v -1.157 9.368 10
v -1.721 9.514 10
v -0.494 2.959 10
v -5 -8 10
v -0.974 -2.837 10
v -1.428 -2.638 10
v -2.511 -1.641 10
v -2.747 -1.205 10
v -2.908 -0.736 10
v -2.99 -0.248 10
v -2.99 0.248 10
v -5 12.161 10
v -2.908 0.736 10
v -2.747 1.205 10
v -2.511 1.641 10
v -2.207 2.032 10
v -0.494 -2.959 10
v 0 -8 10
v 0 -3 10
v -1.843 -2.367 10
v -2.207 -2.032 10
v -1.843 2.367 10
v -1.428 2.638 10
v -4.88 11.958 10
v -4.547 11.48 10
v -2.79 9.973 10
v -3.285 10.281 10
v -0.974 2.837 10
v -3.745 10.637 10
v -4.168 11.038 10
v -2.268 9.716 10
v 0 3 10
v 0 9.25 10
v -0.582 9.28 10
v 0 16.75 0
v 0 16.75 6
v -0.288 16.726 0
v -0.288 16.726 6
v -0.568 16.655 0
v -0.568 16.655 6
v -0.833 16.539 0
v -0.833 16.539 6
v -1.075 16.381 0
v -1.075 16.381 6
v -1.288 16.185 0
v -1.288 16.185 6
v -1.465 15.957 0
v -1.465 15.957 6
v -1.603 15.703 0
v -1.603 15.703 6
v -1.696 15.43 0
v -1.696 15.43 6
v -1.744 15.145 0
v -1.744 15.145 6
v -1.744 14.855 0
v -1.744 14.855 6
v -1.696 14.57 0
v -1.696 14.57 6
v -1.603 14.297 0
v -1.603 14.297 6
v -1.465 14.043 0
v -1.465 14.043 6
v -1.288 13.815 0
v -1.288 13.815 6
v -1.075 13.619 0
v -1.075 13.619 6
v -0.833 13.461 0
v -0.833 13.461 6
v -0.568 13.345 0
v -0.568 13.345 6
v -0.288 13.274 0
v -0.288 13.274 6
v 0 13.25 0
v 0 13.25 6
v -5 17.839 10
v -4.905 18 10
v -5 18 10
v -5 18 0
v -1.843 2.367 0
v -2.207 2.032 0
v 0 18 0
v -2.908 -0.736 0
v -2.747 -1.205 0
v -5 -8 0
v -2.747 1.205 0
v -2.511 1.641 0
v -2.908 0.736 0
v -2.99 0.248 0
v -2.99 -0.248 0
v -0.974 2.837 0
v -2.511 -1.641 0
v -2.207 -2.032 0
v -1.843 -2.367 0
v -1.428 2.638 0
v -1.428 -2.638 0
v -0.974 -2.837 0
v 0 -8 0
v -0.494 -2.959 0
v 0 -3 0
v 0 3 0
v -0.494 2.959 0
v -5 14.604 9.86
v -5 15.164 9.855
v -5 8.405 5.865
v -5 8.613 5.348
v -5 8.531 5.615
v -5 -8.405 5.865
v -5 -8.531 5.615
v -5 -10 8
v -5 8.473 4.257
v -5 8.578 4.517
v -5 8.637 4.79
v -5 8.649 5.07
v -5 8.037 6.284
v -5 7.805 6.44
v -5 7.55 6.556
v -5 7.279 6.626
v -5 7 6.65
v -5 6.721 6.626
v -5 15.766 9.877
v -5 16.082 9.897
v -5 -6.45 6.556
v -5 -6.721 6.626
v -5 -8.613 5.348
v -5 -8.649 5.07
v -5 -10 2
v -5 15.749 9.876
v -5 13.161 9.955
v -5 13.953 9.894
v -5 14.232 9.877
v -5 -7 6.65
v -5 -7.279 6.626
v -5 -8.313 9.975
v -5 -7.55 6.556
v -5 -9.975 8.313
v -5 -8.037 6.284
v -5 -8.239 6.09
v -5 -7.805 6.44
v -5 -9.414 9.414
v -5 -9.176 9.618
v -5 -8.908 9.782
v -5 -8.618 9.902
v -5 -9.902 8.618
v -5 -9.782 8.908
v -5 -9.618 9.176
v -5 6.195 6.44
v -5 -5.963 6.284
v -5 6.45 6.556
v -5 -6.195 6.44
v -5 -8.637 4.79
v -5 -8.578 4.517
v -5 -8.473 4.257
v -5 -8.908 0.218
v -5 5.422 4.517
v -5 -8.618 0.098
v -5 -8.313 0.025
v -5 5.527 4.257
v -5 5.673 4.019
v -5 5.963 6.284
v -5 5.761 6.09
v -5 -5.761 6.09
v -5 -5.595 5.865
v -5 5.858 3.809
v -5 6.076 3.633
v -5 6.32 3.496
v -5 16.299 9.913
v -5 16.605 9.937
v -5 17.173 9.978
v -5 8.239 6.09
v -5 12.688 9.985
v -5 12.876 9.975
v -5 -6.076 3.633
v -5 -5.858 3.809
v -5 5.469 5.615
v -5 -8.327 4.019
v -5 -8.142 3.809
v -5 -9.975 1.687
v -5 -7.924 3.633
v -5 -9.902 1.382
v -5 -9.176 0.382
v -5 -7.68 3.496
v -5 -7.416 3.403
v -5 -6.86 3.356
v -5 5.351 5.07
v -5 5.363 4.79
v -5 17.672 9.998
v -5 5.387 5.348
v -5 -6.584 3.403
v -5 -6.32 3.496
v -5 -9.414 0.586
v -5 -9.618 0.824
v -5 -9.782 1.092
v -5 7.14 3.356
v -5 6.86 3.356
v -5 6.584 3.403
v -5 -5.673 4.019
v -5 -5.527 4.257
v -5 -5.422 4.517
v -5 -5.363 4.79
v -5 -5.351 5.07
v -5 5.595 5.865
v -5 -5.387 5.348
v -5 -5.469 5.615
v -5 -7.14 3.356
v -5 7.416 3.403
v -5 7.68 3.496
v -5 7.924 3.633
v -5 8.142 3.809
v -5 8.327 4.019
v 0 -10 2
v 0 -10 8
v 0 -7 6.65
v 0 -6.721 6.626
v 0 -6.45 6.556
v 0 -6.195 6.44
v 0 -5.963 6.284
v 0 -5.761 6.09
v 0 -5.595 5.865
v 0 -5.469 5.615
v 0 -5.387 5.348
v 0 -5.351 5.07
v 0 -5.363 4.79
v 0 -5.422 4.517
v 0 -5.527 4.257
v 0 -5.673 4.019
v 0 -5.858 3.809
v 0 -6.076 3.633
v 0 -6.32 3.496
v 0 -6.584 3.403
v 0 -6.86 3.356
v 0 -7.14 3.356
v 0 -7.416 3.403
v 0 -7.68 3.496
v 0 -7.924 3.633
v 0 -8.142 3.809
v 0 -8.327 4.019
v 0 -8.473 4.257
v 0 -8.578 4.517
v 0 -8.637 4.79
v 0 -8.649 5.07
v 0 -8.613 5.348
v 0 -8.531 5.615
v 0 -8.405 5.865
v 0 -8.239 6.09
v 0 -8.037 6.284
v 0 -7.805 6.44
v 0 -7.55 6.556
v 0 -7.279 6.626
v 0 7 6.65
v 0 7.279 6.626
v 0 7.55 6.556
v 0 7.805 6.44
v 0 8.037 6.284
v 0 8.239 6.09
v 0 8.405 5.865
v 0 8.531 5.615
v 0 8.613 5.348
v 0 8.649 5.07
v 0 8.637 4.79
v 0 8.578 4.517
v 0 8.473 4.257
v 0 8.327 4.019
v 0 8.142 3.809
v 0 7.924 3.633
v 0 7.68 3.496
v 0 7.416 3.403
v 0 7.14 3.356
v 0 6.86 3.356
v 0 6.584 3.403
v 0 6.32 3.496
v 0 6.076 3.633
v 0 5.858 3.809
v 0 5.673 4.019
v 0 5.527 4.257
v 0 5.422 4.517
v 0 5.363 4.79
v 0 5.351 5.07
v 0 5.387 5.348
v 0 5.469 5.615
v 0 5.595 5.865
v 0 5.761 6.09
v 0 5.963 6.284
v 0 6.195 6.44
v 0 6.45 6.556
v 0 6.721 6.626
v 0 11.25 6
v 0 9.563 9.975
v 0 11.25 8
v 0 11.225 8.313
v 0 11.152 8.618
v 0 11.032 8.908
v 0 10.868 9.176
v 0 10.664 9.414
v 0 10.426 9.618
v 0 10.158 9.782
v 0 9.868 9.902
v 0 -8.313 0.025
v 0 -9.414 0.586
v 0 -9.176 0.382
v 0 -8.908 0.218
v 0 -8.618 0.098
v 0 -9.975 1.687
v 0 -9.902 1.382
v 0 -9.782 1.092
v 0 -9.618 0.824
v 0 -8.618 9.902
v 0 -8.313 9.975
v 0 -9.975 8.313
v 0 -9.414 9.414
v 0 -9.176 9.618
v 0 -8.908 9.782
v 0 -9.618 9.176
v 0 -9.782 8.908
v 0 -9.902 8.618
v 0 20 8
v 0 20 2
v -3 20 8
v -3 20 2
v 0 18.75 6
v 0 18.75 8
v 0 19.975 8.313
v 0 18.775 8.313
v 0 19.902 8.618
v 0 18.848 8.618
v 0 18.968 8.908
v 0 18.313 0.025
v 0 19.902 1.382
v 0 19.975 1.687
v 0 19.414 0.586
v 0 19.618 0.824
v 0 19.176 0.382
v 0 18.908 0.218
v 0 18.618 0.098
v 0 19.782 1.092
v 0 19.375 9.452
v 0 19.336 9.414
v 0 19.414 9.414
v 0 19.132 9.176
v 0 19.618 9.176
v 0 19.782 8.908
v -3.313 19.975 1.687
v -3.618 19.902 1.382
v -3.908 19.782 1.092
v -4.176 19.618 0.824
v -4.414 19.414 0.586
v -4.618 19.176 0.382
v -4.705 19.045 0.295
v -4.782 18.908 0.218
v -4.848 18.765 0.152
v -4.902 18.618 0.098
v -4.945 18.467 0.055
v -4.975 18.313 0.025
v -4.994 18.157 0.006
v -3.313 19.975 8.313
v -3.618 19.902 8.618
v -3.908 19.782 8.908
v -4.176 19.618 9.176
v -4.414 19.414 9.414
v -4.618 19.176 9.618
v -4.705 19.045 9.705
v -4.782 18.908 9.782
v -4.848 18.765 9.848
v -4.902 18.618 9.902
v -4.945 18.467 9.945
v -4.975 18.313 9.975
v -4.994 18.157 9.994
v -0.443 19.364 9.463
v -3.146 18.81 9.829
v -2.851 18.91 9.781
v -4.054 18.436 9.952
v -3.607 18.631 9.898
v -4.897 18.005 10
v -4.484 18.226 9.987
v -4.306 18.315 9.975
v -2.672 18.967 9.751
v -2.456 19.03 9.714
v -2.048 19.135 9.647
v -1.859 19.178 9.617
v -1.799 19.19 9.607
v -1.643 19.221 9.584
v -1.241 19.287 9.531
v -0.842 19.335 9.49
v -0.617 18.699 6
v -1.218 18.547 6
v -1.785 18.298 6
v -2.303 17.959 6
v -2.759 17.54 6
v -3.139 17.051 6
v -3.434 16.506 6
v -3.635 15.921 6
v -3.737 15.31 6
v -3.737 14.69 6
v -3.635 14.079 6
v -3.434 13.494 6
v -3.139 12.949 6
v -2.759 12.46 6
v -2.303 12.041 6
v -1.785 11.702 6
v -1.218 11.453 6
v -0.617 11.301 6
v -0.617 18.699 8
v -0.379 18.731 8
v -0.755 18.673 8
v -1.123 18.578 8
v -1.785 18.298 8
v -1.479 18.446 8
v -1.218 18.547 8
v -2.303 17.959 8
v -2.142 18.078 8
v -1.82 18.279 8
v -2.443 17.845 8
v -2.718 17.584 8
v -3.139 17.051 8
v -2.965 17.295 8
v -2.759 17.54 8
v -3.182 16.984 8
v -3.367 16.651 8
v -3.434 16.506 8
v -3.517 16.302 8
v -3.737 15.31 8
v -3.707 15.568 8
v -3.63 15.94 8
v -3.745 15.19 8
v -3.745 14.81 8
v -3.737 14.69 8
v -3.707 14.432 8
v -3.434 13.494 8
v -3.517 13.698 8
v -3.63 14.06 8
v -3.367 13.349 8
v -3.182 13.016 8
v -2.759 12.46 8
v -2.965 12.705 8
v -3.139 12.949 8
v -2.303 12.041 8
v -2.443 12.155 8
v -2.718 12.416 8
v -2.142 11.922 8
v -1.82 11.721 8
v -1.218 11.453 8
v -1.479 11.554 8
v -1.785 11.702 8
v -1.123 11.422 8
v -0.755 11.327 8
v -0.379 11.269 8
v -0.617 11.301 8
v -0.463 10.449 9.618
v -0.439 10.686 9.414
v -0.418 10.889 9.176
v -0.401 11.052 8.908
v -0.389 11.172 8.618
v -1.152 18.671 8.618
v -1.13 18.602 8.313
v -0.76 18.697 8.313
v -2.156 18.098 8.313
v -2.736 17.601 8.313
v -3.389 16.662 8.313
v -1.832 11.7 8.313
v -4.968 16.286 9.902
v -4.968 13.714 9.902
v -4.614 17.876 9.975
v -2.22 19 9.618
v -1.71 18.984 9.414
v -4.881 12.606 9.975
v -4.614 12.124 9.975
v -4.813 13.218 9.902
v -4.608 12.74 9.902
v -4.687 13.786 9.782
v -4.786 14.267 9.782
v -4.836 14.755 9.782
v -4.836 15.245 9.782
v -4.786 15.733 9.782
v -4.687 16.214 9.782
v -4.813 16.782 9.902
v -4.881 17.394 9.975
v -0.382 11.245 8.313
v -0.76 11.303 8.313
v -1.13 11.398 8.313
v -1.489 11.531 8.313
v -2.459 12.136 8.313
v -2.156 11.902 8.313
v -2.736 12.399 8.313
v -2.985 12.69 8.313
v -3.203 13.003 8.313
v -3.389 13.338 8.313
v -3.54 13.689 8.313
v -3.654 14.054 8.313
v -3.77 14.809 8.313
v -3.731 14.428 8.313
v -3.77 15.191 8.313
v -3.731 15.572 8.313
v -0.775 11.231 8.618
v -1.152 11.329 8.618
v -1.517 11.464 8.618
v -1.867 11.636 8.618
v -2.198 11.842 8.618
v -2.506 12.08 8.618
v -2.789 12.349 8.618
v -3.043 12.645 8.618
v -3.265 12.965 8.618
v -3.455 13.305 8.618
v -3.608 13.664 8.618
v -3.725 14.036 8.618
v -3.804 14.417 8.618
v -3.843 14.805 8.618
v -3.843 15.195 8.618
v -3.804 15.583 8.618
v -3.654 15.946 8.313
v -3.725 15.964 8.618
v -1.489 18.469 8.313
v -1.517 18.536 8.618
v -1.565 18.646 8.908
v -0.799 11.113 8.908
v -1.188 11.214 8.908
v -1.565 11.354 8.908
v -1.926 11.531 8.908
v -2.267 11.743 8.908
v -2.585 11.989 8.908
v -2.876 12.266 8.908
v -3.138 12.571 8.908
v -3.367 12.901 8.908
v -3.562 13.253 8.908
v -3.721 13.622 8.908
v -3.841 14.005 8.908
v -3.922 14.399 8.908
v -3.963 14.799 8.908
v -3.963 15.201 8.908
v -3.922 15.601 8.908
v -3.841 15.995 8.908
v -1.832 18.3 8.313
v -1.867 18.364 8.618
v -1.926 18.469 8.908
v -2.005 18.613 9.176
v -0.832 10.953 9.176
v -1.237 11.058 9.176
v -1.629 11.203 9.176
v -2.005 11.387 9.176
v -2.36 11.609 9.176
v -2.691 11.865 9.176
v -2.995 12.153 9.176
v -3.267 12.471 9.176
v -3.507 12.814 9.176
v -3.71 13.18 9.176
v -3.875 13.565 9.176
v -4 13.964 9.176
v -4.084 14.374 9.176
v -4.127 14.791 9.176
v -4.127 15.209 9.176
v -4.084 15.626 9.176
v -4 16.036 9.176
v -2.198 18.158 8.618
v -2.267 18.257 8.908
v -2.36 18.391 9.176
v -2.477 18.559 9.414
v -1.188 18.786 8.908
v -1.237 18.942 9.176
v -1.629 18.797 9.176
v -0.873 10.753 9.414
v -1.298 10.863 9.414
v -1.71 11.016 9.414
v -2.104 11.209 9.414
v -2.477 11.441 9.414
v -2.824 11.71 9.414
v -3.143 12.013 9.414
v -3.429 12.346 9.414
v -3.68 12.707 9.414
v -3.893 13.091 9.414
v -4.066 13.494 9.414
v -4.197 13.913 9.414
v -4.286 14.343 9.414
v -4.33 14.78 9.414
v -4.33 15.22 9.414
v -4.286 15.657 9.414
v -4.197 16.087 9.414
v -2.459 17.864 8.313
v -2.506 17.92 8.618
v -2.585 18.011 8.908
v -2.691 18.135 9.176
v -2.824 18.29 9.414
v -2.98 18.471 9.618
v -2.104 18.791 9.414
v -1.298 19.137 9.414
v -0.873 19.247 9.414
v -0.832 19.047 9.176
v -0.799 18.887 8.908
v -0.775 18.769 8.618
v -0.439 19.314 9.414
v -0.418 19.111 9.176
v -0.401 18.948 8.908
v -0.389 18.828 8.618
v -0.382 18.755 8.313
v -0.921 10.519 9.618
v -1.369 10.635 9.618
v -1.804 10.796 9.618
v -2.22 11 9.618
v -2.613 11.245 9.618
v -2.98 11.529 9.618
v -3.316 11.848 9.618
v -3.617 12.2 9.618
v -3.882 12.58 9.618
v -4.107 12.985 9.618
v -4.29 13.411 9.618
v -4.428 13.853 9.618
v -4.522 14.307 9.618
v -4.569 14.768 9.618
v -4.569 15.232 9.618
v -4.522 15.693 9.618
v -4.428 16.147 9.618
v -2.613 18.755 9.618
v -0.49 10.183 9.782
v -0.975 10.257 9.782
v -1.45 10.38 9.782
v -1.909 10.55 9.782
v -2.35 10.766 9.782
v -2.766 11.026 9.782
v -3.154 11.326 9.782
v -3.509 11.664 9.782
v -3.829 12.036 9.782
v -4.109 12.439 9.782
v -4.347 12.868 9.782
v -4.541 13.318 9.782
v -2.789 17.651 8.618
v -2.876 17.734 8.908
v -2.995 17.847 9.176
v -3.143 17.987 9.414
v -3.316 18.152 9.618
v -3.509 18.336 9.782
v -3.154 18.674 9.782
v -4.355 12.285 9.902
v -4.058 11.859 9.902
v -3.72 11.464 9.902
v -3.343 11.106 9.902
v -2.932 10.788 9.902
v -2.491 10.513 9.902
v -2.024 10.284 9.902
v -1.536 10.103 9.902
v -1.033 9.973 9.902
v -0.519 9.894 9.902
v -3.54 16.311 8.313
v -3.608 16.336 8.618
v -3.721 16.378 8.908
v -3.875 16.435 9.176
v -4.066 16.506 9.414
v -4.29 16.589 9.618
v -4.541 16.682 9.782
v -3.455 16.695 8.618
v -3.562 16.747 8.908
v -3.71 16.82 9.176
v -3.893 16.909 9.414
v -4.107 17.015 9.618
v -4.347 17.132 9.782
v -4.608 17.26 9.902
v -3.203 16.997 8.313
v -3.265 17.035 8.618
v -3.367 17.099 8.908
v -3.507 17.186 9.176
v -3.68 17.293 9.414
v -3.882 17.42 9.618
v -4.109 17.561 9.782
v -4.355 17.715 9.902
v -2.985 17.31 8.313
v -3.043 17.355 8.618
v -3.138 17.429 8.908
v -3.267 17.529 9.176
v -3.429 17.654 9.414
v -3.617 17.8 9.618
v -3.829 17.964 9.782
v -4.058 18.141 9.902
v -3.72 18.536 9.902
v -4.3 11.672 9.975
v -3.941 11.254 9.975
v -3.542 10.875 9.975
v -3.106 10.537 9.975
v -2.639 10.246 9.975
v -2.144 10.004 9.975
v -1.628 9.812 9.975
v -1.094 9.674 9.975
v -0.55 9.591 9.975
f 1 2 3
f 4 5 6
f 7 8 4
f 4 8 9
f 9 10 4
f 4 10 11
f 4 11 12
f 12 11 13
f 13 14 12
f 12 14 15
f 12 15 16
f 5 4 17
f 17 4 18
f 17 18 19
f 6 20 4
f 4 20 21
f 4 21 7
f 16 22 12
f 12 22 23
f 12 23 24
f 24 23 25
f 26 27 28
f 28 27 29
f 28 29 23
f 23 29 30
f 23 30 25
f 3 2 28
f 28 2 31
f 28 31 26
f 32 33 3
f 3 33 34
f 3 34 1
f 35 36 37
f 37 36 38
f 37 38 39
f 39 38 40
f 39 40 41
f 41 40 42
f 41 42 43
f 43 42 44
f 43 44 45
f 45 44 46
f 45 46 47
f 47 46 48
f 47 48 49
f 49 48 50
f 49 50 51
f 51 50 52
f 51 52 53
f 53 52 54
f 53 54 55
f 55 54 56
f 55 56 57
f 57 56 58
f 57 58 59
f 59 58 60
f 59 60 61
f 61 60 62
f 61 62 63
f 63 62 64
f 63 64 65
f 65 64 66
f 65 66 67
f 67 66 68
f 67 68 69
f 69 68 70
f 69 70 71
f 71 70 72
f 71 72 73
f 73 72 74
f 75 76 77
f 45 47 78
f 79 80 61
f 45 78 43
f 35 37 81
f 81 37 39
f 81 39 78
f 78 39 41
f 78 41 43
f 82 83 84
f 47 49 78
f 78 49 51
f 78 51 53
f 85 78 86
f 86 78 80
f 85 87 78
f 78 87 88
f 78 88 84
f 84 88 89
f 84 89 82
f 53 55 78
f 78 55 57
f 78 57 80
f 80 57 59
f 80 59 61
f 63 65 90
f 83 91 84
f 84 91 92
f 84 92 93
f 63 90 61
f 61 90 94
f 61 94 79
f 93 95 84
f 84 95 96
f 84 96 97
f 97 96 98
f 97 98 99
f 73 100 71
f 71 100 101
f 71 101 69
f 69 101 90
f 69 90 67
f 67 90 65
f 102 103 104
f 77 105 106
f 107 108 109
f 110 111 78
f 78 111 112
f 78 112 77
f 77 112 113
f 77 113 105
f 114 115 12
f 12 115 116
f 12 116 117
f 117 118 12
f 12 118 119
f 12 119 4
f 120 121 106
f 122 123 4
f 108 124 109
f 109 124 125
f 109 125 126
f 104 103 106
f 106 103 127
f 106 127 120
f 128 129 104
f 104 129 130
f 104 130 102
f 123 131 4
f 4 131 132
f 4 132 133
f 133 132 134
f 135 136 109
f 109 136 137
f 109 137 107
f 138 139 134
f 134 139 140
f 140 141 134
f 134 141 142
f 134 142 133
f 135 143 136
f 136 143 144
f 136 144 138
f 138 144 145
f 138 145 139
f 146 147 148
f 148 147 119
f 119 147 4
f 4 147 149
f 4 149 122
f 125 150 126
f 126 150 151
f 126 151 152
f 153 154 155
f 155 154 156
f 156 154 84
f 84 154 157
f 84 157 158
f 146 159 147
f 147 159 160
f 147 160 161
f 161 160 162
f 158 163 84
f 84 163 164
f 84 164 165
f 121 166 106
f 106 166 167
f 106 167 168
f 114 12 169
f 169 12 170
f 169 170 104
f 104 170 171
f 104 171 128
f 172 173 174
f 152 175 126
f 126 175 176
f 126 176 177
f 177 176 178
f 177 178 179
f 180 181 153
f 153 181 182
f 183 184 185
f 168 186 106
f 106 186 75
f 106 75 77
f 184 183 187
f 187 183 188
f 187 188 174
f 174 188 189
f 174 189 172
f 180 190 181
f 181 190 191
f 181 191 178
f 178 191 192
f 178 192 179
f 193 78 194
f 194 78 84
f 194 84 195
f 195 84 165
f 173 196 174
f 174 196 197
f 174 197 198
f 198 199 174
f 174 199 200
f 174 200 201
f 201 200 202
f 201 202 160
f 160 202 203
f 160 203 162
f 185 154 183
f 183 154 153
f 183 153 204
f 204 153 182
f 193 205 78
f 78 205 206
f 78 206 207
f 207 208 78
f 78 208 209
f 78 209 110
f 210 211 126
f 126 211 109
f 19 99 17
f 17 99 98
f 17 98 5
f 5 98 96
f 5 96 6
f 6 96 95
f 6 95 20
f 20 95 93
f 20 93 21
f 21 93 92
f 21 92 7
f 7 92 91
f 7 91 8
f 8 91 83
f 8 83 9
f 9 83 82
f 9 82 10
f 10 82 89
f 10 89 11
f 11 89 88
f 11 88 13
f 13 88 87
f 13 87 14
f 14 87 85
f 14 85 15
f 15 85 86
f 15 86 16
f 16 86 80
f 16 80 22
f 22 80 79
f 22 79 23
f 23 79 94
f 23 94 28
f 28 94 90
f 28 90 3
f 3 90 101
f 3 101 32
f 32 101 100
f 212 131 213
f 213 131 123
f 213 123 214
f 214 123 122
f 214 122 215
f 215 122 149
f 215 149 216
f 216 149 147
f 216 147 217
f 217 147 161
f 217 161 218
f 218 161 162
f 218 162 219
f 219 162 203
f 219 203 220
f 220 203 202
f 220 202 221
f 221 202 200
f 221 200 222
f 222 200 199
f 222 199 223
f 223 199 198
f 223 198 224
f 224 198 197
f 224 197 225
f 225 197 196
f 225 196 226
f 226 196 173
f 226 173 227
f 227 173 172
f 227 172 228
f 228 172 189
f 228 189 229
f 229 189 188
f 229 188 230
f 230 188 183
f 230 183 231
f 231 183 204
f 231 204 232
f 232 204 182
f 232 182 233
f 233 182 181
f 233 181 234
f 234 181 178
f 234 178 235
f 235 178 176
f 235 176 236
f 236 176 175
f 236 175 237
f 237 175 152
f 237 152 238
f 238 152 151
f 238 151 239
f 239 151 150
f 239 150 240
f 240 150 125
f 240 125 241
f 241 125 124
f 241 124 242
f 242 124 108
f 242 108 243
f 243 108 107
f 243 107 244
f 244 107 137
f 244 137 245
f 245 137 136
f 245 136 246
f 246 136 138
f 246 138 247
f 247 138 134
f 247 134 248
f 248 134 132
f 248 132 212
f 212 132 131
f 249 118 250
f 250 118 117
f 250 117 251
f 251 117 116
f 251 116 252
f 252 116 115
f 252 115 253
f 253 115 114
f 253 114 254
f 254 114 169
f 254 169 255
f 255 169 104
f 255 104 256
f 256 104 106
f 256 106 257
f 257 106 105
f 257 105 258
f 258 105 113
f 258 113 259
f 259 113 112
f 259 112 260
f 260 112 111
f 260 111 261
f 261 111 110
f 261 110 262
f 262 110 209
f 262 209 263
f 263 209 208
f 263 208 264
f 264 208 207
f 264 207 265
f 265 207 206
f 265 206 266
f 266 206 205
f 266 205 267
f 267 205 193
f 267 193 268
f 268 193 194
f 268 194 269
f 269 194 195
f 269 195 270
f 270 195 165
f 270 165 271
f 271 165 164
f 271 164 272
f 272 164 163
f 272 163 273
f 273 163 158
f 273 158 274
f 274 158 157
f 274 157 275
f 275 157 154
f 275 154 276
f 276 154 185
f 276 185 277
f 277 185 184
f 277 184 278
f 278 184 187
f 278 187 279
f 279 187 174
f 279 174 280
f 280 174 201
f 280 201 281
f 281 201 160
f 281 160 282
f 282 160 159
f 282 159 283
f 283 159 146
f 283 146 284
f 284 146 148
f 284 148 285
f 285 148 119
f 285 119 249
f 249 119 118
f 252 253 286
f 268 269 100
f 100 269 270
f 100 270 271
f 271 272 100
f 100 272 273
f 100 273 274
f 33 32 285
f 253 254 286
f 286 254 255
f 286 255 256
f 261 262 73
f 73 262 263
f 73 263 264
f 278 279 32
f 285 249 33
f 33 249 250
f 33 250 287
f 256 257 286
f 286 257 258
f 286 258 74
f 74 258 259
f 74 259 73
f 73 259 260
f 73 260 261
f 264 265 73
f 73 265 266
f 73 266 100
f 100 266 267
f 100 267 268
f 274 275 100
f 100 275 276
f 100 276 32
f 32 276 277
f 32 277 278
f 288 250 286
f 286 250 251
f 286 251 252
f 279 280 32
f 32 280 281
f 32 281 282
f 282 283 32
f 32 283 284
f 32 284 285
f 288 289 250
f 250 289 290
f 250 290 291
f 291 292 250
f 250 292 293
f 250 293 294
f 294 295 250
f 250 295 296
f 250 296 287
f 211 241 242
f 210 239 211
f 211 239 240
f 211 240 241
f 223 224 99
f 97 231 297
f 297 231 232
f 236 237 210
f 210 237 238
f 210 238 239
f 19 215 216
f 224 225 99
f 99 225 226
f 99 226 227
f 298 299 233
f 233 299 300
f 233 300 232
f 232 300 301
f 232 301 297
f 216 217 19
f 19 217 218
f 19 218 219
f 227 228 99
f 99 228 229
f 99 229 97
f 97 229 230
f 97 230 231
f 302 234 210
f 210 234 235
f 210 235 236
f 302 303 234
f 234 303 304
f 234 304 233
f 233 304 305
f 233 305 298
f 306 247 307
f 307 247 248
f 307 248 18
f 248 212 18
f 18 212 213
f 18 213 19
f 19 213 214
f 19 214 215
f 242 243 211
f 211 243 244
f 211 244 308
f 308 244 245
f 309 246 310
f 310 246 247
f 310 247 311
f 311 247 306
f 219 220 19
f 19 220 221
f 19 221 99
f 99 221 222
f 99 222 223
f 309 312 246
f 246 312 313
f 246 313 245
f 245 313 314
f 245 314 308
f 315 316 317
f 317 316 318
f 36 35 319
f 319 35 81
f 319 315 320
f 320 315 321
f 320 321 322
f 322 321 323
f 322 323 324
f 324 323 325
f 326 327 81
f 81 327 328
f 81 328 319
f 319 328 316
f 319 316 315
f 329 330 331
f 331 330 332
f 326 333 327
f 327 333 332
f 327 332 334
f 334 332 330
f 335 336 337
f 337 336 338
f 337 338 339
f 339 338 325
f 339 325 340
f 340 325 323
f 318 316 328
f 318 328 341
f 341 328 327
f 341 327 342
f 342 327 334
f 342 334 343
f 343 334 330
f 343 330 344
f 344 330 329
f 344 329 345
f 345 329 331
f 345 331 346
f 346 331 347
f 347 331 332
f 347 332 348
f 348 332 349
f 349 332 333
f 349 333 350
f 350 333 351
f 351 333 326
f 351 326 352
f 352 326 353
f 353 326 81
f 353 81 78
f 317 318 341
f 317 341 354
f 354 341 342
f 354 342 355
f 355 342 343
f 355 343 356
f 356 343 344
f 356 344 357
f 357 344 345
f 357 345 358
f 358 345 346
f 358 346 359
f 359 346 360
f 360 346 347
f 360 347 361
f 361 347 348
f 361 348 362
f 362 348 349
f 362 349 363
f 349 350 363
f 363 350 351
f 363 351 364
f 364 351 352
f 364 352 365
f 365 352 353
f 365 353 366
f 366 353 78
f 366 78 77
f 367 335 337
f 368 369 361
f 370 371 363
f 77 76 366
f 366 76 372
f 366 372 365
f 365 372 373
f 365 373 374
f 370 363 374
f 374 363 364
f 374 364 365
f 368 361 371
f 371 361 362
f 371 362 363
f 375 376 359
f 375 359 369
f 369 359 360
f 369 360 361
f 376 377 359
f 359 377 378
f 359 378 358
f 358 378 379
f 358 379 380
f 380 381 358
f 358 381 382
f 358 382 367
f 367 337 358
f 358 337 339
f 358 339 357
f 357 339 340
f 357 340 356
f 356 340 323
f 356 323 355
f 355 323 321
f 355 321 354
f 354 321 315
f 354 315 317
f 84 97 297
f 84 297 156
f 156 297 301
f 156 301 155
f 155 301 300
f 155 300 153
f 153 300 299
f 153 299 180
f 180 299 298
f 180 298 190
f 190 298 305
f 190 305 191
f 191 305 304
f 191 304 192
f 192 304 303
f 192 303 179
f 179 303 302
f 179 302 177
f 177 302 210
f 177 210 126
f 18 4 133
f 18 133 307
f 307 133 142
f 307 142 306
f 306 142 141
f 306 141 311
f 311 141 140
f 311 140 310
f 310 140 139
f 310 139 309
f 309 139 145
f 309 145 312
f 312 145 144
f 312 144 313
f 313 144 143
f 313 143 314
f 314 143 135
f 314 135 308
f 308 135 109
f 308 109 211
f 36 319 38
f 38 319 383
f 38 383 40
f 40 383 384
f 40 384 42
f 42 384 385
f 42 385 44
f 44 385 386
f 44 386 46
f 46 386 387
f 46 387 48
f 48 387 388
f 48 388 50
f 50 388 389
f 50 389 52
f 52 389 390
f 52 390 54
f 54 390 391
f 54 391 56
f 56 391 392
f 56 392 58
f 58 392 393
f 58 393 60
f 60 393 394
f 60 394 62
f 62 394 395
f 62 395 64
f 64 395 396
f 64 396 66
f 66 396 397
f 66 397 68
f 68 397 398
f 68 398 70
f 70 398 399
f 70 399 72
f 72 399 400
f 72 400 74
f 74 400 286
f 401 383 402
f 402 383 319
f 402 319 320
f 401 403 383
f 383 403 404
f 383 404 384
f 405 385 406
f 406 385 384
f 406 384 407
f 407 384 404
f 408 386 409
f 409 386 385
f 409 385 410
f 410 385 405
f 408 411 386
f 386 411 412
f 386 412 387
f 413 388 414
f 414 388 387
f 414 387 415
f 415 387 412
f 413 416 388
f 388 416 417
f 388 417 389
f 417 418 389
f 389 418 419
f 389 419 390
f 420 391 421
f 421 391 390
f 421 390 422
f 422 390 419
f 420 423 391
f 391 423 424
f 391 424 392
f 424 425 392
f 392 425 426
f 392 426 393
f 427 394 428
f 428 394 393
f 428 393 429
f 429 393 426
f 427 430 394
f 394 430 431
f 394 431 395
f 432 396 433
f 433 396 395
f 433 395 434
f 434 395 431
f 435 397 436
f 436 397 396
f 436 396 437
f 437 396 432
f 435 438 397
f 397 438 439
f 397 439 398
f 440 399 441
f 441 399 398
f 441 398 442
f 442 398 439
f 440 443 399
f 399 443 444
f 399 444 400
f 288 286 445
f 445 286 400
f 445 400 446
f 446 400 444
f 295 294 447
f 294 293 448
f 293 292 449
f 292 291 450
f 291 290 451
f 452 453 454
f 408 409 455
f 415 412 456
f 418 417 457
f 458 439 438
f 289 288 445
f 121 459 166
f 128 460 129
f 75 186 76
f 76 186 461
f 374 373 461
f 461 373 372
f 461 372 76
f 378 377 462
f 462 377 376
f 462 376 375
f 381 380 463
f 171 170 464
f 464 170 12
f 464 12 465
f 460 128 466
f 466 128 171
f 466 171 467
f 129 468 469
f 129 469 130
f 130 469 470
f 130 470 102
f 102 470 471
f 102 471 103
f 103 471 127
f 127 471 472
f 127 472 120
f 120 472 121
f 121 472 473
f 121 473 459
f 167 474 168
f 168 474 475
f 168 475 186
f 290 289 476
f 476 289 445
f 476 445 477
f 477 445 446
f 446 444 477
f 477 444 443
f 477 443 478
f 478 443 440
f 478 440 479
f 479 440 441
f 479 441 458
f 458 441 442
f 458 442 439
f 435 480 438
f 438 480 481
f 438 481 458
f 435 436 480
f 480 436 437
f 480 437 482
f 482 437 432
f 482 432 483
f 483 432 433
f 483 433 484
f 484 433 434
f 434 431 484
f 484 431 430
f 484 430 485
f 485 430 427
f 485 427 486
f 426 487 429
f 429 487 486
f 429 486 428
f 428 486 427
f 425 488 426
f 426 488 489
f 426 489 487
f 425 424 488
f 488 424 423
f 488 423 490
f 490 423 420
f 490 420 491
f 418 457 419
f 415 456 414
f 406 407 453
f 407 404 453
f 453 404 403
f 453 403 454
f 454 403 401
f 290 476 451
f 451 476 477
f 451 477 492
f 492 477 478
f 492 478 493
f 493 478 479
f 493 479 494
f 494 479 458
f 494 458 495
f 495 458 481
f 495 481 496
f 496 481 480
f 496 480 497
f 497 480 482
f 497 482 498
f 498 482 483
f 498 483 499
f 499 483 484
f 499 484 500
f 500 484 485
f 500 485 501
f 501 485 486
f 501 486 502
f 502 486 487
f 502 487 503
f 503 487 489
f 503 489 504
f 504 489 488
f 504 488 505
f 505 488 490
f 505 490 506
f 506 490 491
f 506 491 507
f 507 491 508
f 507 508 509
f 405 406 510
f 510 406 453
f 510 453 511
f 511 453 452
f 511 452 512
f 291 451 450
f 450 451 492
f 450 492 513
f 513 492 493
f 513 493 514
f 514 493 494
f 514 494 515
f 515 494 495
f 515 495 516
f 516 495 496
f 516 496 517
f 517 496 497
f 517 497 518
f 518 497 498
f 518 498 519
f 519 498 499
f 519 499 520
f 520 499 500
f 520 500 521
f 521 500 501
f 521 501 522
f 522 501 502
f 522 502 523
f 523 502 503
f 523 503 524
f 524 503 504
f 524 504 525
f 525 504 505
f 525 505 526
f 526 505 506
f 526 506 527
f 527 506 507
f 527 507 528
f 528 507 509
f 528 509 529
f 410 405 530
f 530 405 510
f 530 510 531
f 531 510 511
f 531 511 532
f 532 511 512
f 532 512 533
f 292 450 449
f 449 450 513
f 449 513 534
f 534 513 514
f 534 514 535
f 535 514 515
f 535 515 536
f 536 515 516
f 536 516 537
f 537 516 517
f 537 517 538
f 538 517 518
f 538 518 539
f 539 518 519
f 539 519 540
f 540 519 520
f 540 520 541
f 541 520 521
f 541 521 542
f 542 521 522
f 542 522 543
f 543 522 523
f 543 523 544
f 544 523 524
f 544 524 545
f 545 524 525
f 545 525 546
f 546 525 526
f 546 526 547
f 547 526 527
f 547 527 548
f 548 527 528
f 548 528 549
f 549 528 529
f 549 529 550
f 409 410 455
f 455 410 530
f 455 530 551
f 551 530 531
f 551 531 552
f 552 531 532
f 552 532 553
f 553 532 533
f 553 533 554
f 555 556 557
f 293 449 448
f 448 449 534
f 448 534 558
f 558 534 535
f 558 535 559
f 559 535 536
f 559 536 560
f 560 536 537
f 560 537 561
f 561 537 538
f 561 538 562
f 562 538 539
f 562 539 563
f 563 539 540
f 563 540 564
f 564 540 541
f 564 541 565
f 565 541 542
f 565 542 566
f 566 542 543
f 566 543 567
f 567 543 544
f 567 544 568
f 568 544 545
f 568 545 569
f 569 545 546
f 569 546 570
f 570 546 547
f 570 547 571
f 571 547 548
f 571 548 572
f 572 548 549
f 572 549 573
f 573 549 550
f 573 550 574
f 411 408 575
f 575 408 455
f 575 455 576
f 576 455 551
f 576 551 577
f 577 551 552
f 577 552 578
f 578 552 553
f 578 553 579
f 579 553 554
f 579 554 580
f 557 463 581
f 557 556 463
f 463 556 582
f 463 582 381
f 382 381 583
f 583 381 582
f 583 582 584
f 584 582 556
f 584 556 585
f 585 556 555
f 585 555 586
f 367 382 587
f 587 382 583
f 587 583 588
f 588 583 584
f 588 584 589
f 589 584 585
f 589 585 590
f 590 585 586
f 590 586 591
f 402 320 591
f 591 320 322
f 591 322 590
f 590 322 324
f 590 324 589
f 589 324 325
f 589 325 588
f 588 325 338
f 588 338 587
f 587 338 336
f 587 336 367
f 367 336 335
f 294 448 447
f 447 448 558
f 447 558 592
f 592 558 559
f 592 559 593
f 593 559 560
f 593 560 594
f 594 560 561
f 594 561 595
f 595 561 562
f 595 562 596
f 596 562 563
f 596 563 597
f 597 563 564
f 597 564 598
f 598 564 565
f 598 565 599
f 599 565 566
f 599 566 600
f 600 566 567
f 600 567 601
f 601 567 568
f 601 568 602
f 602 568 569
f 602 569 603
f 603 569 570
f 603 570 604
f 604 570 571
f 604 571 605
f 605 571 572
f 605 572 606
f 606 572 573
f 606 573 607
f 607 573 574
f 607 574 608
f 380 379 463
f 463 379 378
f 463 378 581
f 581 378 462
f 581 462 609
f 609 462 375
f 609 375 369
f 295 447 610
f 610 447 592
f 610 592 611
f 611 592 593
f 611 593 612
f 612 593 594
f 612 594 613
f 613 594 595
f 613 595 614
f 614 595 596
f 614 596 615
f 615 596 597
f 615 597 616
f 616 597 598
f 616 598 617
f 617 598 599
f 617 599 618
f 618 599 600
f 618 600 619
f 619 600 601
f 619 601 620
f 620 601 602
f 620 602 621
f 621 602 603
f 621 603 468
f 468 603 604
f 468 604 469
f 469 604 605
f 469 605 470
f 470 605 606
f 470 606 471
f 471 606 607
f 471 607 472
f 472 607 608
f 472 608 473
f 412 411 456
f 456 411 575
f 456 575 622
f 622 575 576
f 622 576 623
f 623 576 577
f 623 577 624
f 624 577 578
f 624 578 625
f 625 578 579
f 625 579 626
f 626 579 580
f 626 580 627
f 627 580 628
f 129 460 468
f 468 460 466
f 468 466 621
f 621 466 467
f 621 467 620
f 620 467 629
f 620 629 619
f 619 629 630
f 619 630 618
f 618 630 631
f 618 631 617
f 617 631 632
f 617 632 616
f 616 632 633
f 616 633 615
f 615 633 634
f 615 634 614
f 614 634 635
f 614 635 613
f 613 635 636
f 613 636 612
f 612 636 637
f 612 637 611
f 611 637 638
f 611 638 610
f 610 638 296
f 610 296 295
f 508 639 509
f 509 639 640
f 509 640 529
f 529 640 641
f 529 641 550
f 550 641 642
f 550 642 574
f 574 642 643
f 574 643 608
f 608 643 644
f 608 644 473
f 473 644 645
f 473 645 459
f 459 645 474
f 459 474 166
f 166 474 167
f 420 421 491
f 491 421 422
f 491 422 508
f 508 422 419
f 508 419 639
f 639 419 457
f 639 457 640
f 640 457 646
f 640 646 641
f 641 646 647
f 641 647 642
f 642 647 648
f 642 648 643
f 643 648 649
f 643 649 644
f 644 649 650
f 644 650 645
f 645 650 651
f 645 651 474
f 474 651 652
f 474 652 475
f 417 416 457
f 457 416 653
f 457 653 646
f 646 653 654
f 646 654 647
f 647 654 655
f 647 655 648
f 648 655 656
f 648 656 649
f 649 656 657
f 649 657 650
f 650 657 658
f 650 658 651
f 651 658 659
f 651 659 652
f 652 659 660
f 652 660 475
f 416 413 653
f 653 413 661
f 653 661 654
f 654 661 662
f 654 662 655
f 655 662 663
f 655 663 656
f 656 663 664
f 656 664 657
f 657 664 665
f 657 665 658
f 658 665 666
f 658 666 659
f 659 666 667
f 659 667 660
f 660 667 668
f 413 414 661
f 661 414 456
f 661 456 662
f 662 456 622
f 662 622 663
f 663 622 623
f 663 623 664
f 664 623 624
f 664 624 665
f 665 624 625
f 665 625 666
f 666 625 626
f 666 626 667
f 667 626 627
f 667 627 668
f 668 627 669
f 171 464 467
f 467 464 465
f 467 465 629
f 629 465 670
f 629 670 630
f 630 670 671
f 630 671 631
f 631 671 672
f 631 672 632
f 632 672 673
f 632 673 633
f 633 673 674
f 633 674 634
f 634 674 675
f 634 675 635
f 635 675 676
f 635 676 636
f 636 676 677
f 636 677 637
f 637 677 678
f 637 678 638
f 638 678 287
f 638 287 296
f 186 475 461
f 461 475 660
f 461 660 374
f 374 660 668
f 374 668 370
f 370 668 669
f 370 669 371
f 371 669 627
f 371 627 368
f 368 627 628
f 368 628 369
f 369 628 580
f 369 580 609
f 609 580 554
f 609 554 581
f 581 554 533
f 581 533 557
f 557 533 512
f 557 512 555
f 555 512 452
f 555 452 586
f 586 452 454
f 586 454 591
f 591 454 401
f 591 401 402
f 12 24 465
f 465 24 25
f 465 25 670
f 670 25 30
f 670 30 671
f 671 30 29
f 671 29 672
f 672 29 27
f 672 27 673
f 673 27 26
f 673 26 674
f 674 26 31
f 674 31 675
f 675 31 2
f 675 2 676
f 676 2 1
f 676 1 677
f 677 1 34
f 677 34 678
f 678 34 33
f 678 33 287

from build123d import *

# Parameters (mm, degrees)
SKETCH_1_W          = 10
SKETCH_1_H          = 20
SKETCH_1_R          = 3
EXTRUDE_1_DEPTH     = 10
SKETCH_2_R          = 1.65
CUT_EXTRUDE_1_DEPTH = 18.320508076
SKETCH_3_W          = 12.852703923
SKETCH_3_H          = 20.2795508
CUT_EXTRUDE_2_DEPTH = 16
EXTRUDE_2_DEPTH     = 10
FILLET_1_R          = 2
SKETCH_6_R          = 3.75
CUT_EXTRUDE_3_DEPTH = 4
FILLET_2_R          = 2


with BuildPart() as part:
    # 草圖1 → 填料-伸長1 (new body)
    with BuildSketch(Plane.XY):
        Rectangle(SKETCH_1_W, SKETCH_1_H)
        Circle(SKETCH_1_R, mode=Mode.SUBTRACT)
    extrude(amount=EXTRUDE_1_DEPTH)

    # 草圖2 → 除料-伸長1 (cut, through all)
    with BuildSketch(Plane.ZY.offset(5)):
        with Locations((5, 7)):
            Circle(SKETCH_2_R)
        with Locations((5, -7)):
            Circle(SKETCH_2_R)
    extrude(amount=-CUT_EXTRUDE_1_DEPTH, mode=Mode.SUBTRACT)

    # 草圖3 → 除料-伸長2 (cut, through all)
    with BuildSketch(Plane.XY.offset(10)):
        with Locations((6.426351961, -0.1397754)):
            Rectangle(SKETCH_3_W, SKETCH_3_H)
    extrude(amount=-CUT_EXTRUDE_2_DEPTH, mode=Mode.SUBTRACT)

    # 草圖5 → 填料-伸長2 (add, through all)
    with BuildSketch(Plane.XY.offset(10)):
        with BuildLine():
            Line((0, 10), (0, 13.25))
            ThreePointArc((0, 13.25), (-1.75, 15), (0, 16.75))
            Line((0, 16.75), (0, 20))
            Line((0, 20), (-5, 20))
            Line((-5, 20), (-5, 10))
            Line((-5, 10), (0, 10))
        make_face()
    extrude(amount=-EXTRUDE_2_DEPTH)

    # 圓角1
    fillet_1_edges = [part.edges().sort_by_distance(p)[0] for p in [
        (-2.5, -10, 0),
        (-2.5, 20, 0),
        (-5, 20, 5),
        (-2.5, 20, 10),
        (-2.5, -10, 10),
    ]]
    fillet(fillet_1_edges, radius=FILLET_1_R)

    # 草圖6 → 除料-伸長3 (cut)
    with BuildSketch(Plane.XY.offset(10)):
        with Locations((0, 15)):
            Circle(SKETCH_6_R)
    extrude(amount=-CUT_EXTRUDE_3_DEPTH, mode=Mode.SUBTRACT)

    # 圓角2
    # the kernel refuses this fillet: 2 mm, written as the material it takes off along each edge
    with BuildSketch(Plane(origin=(0, 15, 10), x_dir=(0.6374525530296073, 0.7704896122830182, 0), z_dir=(0.7704896122830182, -0.6374525530296073, 0))) as fillet_2_piece_1:
        with BuildLine():
            CenterArc((3.75 + FILLET_2_R, -FILLET_2_R), FILLET_2_R, 90, 90)
            Line((3.75, -FILLET_2_R), (3.75, 0))
            Line((3.75, 0), (3.75 + FILLET_2_R, 0))
        make_face()
    revolve(axis=Axis((0, 15, 10), (0, 0, 1)), revolution_arc=296.074145673, mode=Mode.SUBTRACT)


solid = part.part
